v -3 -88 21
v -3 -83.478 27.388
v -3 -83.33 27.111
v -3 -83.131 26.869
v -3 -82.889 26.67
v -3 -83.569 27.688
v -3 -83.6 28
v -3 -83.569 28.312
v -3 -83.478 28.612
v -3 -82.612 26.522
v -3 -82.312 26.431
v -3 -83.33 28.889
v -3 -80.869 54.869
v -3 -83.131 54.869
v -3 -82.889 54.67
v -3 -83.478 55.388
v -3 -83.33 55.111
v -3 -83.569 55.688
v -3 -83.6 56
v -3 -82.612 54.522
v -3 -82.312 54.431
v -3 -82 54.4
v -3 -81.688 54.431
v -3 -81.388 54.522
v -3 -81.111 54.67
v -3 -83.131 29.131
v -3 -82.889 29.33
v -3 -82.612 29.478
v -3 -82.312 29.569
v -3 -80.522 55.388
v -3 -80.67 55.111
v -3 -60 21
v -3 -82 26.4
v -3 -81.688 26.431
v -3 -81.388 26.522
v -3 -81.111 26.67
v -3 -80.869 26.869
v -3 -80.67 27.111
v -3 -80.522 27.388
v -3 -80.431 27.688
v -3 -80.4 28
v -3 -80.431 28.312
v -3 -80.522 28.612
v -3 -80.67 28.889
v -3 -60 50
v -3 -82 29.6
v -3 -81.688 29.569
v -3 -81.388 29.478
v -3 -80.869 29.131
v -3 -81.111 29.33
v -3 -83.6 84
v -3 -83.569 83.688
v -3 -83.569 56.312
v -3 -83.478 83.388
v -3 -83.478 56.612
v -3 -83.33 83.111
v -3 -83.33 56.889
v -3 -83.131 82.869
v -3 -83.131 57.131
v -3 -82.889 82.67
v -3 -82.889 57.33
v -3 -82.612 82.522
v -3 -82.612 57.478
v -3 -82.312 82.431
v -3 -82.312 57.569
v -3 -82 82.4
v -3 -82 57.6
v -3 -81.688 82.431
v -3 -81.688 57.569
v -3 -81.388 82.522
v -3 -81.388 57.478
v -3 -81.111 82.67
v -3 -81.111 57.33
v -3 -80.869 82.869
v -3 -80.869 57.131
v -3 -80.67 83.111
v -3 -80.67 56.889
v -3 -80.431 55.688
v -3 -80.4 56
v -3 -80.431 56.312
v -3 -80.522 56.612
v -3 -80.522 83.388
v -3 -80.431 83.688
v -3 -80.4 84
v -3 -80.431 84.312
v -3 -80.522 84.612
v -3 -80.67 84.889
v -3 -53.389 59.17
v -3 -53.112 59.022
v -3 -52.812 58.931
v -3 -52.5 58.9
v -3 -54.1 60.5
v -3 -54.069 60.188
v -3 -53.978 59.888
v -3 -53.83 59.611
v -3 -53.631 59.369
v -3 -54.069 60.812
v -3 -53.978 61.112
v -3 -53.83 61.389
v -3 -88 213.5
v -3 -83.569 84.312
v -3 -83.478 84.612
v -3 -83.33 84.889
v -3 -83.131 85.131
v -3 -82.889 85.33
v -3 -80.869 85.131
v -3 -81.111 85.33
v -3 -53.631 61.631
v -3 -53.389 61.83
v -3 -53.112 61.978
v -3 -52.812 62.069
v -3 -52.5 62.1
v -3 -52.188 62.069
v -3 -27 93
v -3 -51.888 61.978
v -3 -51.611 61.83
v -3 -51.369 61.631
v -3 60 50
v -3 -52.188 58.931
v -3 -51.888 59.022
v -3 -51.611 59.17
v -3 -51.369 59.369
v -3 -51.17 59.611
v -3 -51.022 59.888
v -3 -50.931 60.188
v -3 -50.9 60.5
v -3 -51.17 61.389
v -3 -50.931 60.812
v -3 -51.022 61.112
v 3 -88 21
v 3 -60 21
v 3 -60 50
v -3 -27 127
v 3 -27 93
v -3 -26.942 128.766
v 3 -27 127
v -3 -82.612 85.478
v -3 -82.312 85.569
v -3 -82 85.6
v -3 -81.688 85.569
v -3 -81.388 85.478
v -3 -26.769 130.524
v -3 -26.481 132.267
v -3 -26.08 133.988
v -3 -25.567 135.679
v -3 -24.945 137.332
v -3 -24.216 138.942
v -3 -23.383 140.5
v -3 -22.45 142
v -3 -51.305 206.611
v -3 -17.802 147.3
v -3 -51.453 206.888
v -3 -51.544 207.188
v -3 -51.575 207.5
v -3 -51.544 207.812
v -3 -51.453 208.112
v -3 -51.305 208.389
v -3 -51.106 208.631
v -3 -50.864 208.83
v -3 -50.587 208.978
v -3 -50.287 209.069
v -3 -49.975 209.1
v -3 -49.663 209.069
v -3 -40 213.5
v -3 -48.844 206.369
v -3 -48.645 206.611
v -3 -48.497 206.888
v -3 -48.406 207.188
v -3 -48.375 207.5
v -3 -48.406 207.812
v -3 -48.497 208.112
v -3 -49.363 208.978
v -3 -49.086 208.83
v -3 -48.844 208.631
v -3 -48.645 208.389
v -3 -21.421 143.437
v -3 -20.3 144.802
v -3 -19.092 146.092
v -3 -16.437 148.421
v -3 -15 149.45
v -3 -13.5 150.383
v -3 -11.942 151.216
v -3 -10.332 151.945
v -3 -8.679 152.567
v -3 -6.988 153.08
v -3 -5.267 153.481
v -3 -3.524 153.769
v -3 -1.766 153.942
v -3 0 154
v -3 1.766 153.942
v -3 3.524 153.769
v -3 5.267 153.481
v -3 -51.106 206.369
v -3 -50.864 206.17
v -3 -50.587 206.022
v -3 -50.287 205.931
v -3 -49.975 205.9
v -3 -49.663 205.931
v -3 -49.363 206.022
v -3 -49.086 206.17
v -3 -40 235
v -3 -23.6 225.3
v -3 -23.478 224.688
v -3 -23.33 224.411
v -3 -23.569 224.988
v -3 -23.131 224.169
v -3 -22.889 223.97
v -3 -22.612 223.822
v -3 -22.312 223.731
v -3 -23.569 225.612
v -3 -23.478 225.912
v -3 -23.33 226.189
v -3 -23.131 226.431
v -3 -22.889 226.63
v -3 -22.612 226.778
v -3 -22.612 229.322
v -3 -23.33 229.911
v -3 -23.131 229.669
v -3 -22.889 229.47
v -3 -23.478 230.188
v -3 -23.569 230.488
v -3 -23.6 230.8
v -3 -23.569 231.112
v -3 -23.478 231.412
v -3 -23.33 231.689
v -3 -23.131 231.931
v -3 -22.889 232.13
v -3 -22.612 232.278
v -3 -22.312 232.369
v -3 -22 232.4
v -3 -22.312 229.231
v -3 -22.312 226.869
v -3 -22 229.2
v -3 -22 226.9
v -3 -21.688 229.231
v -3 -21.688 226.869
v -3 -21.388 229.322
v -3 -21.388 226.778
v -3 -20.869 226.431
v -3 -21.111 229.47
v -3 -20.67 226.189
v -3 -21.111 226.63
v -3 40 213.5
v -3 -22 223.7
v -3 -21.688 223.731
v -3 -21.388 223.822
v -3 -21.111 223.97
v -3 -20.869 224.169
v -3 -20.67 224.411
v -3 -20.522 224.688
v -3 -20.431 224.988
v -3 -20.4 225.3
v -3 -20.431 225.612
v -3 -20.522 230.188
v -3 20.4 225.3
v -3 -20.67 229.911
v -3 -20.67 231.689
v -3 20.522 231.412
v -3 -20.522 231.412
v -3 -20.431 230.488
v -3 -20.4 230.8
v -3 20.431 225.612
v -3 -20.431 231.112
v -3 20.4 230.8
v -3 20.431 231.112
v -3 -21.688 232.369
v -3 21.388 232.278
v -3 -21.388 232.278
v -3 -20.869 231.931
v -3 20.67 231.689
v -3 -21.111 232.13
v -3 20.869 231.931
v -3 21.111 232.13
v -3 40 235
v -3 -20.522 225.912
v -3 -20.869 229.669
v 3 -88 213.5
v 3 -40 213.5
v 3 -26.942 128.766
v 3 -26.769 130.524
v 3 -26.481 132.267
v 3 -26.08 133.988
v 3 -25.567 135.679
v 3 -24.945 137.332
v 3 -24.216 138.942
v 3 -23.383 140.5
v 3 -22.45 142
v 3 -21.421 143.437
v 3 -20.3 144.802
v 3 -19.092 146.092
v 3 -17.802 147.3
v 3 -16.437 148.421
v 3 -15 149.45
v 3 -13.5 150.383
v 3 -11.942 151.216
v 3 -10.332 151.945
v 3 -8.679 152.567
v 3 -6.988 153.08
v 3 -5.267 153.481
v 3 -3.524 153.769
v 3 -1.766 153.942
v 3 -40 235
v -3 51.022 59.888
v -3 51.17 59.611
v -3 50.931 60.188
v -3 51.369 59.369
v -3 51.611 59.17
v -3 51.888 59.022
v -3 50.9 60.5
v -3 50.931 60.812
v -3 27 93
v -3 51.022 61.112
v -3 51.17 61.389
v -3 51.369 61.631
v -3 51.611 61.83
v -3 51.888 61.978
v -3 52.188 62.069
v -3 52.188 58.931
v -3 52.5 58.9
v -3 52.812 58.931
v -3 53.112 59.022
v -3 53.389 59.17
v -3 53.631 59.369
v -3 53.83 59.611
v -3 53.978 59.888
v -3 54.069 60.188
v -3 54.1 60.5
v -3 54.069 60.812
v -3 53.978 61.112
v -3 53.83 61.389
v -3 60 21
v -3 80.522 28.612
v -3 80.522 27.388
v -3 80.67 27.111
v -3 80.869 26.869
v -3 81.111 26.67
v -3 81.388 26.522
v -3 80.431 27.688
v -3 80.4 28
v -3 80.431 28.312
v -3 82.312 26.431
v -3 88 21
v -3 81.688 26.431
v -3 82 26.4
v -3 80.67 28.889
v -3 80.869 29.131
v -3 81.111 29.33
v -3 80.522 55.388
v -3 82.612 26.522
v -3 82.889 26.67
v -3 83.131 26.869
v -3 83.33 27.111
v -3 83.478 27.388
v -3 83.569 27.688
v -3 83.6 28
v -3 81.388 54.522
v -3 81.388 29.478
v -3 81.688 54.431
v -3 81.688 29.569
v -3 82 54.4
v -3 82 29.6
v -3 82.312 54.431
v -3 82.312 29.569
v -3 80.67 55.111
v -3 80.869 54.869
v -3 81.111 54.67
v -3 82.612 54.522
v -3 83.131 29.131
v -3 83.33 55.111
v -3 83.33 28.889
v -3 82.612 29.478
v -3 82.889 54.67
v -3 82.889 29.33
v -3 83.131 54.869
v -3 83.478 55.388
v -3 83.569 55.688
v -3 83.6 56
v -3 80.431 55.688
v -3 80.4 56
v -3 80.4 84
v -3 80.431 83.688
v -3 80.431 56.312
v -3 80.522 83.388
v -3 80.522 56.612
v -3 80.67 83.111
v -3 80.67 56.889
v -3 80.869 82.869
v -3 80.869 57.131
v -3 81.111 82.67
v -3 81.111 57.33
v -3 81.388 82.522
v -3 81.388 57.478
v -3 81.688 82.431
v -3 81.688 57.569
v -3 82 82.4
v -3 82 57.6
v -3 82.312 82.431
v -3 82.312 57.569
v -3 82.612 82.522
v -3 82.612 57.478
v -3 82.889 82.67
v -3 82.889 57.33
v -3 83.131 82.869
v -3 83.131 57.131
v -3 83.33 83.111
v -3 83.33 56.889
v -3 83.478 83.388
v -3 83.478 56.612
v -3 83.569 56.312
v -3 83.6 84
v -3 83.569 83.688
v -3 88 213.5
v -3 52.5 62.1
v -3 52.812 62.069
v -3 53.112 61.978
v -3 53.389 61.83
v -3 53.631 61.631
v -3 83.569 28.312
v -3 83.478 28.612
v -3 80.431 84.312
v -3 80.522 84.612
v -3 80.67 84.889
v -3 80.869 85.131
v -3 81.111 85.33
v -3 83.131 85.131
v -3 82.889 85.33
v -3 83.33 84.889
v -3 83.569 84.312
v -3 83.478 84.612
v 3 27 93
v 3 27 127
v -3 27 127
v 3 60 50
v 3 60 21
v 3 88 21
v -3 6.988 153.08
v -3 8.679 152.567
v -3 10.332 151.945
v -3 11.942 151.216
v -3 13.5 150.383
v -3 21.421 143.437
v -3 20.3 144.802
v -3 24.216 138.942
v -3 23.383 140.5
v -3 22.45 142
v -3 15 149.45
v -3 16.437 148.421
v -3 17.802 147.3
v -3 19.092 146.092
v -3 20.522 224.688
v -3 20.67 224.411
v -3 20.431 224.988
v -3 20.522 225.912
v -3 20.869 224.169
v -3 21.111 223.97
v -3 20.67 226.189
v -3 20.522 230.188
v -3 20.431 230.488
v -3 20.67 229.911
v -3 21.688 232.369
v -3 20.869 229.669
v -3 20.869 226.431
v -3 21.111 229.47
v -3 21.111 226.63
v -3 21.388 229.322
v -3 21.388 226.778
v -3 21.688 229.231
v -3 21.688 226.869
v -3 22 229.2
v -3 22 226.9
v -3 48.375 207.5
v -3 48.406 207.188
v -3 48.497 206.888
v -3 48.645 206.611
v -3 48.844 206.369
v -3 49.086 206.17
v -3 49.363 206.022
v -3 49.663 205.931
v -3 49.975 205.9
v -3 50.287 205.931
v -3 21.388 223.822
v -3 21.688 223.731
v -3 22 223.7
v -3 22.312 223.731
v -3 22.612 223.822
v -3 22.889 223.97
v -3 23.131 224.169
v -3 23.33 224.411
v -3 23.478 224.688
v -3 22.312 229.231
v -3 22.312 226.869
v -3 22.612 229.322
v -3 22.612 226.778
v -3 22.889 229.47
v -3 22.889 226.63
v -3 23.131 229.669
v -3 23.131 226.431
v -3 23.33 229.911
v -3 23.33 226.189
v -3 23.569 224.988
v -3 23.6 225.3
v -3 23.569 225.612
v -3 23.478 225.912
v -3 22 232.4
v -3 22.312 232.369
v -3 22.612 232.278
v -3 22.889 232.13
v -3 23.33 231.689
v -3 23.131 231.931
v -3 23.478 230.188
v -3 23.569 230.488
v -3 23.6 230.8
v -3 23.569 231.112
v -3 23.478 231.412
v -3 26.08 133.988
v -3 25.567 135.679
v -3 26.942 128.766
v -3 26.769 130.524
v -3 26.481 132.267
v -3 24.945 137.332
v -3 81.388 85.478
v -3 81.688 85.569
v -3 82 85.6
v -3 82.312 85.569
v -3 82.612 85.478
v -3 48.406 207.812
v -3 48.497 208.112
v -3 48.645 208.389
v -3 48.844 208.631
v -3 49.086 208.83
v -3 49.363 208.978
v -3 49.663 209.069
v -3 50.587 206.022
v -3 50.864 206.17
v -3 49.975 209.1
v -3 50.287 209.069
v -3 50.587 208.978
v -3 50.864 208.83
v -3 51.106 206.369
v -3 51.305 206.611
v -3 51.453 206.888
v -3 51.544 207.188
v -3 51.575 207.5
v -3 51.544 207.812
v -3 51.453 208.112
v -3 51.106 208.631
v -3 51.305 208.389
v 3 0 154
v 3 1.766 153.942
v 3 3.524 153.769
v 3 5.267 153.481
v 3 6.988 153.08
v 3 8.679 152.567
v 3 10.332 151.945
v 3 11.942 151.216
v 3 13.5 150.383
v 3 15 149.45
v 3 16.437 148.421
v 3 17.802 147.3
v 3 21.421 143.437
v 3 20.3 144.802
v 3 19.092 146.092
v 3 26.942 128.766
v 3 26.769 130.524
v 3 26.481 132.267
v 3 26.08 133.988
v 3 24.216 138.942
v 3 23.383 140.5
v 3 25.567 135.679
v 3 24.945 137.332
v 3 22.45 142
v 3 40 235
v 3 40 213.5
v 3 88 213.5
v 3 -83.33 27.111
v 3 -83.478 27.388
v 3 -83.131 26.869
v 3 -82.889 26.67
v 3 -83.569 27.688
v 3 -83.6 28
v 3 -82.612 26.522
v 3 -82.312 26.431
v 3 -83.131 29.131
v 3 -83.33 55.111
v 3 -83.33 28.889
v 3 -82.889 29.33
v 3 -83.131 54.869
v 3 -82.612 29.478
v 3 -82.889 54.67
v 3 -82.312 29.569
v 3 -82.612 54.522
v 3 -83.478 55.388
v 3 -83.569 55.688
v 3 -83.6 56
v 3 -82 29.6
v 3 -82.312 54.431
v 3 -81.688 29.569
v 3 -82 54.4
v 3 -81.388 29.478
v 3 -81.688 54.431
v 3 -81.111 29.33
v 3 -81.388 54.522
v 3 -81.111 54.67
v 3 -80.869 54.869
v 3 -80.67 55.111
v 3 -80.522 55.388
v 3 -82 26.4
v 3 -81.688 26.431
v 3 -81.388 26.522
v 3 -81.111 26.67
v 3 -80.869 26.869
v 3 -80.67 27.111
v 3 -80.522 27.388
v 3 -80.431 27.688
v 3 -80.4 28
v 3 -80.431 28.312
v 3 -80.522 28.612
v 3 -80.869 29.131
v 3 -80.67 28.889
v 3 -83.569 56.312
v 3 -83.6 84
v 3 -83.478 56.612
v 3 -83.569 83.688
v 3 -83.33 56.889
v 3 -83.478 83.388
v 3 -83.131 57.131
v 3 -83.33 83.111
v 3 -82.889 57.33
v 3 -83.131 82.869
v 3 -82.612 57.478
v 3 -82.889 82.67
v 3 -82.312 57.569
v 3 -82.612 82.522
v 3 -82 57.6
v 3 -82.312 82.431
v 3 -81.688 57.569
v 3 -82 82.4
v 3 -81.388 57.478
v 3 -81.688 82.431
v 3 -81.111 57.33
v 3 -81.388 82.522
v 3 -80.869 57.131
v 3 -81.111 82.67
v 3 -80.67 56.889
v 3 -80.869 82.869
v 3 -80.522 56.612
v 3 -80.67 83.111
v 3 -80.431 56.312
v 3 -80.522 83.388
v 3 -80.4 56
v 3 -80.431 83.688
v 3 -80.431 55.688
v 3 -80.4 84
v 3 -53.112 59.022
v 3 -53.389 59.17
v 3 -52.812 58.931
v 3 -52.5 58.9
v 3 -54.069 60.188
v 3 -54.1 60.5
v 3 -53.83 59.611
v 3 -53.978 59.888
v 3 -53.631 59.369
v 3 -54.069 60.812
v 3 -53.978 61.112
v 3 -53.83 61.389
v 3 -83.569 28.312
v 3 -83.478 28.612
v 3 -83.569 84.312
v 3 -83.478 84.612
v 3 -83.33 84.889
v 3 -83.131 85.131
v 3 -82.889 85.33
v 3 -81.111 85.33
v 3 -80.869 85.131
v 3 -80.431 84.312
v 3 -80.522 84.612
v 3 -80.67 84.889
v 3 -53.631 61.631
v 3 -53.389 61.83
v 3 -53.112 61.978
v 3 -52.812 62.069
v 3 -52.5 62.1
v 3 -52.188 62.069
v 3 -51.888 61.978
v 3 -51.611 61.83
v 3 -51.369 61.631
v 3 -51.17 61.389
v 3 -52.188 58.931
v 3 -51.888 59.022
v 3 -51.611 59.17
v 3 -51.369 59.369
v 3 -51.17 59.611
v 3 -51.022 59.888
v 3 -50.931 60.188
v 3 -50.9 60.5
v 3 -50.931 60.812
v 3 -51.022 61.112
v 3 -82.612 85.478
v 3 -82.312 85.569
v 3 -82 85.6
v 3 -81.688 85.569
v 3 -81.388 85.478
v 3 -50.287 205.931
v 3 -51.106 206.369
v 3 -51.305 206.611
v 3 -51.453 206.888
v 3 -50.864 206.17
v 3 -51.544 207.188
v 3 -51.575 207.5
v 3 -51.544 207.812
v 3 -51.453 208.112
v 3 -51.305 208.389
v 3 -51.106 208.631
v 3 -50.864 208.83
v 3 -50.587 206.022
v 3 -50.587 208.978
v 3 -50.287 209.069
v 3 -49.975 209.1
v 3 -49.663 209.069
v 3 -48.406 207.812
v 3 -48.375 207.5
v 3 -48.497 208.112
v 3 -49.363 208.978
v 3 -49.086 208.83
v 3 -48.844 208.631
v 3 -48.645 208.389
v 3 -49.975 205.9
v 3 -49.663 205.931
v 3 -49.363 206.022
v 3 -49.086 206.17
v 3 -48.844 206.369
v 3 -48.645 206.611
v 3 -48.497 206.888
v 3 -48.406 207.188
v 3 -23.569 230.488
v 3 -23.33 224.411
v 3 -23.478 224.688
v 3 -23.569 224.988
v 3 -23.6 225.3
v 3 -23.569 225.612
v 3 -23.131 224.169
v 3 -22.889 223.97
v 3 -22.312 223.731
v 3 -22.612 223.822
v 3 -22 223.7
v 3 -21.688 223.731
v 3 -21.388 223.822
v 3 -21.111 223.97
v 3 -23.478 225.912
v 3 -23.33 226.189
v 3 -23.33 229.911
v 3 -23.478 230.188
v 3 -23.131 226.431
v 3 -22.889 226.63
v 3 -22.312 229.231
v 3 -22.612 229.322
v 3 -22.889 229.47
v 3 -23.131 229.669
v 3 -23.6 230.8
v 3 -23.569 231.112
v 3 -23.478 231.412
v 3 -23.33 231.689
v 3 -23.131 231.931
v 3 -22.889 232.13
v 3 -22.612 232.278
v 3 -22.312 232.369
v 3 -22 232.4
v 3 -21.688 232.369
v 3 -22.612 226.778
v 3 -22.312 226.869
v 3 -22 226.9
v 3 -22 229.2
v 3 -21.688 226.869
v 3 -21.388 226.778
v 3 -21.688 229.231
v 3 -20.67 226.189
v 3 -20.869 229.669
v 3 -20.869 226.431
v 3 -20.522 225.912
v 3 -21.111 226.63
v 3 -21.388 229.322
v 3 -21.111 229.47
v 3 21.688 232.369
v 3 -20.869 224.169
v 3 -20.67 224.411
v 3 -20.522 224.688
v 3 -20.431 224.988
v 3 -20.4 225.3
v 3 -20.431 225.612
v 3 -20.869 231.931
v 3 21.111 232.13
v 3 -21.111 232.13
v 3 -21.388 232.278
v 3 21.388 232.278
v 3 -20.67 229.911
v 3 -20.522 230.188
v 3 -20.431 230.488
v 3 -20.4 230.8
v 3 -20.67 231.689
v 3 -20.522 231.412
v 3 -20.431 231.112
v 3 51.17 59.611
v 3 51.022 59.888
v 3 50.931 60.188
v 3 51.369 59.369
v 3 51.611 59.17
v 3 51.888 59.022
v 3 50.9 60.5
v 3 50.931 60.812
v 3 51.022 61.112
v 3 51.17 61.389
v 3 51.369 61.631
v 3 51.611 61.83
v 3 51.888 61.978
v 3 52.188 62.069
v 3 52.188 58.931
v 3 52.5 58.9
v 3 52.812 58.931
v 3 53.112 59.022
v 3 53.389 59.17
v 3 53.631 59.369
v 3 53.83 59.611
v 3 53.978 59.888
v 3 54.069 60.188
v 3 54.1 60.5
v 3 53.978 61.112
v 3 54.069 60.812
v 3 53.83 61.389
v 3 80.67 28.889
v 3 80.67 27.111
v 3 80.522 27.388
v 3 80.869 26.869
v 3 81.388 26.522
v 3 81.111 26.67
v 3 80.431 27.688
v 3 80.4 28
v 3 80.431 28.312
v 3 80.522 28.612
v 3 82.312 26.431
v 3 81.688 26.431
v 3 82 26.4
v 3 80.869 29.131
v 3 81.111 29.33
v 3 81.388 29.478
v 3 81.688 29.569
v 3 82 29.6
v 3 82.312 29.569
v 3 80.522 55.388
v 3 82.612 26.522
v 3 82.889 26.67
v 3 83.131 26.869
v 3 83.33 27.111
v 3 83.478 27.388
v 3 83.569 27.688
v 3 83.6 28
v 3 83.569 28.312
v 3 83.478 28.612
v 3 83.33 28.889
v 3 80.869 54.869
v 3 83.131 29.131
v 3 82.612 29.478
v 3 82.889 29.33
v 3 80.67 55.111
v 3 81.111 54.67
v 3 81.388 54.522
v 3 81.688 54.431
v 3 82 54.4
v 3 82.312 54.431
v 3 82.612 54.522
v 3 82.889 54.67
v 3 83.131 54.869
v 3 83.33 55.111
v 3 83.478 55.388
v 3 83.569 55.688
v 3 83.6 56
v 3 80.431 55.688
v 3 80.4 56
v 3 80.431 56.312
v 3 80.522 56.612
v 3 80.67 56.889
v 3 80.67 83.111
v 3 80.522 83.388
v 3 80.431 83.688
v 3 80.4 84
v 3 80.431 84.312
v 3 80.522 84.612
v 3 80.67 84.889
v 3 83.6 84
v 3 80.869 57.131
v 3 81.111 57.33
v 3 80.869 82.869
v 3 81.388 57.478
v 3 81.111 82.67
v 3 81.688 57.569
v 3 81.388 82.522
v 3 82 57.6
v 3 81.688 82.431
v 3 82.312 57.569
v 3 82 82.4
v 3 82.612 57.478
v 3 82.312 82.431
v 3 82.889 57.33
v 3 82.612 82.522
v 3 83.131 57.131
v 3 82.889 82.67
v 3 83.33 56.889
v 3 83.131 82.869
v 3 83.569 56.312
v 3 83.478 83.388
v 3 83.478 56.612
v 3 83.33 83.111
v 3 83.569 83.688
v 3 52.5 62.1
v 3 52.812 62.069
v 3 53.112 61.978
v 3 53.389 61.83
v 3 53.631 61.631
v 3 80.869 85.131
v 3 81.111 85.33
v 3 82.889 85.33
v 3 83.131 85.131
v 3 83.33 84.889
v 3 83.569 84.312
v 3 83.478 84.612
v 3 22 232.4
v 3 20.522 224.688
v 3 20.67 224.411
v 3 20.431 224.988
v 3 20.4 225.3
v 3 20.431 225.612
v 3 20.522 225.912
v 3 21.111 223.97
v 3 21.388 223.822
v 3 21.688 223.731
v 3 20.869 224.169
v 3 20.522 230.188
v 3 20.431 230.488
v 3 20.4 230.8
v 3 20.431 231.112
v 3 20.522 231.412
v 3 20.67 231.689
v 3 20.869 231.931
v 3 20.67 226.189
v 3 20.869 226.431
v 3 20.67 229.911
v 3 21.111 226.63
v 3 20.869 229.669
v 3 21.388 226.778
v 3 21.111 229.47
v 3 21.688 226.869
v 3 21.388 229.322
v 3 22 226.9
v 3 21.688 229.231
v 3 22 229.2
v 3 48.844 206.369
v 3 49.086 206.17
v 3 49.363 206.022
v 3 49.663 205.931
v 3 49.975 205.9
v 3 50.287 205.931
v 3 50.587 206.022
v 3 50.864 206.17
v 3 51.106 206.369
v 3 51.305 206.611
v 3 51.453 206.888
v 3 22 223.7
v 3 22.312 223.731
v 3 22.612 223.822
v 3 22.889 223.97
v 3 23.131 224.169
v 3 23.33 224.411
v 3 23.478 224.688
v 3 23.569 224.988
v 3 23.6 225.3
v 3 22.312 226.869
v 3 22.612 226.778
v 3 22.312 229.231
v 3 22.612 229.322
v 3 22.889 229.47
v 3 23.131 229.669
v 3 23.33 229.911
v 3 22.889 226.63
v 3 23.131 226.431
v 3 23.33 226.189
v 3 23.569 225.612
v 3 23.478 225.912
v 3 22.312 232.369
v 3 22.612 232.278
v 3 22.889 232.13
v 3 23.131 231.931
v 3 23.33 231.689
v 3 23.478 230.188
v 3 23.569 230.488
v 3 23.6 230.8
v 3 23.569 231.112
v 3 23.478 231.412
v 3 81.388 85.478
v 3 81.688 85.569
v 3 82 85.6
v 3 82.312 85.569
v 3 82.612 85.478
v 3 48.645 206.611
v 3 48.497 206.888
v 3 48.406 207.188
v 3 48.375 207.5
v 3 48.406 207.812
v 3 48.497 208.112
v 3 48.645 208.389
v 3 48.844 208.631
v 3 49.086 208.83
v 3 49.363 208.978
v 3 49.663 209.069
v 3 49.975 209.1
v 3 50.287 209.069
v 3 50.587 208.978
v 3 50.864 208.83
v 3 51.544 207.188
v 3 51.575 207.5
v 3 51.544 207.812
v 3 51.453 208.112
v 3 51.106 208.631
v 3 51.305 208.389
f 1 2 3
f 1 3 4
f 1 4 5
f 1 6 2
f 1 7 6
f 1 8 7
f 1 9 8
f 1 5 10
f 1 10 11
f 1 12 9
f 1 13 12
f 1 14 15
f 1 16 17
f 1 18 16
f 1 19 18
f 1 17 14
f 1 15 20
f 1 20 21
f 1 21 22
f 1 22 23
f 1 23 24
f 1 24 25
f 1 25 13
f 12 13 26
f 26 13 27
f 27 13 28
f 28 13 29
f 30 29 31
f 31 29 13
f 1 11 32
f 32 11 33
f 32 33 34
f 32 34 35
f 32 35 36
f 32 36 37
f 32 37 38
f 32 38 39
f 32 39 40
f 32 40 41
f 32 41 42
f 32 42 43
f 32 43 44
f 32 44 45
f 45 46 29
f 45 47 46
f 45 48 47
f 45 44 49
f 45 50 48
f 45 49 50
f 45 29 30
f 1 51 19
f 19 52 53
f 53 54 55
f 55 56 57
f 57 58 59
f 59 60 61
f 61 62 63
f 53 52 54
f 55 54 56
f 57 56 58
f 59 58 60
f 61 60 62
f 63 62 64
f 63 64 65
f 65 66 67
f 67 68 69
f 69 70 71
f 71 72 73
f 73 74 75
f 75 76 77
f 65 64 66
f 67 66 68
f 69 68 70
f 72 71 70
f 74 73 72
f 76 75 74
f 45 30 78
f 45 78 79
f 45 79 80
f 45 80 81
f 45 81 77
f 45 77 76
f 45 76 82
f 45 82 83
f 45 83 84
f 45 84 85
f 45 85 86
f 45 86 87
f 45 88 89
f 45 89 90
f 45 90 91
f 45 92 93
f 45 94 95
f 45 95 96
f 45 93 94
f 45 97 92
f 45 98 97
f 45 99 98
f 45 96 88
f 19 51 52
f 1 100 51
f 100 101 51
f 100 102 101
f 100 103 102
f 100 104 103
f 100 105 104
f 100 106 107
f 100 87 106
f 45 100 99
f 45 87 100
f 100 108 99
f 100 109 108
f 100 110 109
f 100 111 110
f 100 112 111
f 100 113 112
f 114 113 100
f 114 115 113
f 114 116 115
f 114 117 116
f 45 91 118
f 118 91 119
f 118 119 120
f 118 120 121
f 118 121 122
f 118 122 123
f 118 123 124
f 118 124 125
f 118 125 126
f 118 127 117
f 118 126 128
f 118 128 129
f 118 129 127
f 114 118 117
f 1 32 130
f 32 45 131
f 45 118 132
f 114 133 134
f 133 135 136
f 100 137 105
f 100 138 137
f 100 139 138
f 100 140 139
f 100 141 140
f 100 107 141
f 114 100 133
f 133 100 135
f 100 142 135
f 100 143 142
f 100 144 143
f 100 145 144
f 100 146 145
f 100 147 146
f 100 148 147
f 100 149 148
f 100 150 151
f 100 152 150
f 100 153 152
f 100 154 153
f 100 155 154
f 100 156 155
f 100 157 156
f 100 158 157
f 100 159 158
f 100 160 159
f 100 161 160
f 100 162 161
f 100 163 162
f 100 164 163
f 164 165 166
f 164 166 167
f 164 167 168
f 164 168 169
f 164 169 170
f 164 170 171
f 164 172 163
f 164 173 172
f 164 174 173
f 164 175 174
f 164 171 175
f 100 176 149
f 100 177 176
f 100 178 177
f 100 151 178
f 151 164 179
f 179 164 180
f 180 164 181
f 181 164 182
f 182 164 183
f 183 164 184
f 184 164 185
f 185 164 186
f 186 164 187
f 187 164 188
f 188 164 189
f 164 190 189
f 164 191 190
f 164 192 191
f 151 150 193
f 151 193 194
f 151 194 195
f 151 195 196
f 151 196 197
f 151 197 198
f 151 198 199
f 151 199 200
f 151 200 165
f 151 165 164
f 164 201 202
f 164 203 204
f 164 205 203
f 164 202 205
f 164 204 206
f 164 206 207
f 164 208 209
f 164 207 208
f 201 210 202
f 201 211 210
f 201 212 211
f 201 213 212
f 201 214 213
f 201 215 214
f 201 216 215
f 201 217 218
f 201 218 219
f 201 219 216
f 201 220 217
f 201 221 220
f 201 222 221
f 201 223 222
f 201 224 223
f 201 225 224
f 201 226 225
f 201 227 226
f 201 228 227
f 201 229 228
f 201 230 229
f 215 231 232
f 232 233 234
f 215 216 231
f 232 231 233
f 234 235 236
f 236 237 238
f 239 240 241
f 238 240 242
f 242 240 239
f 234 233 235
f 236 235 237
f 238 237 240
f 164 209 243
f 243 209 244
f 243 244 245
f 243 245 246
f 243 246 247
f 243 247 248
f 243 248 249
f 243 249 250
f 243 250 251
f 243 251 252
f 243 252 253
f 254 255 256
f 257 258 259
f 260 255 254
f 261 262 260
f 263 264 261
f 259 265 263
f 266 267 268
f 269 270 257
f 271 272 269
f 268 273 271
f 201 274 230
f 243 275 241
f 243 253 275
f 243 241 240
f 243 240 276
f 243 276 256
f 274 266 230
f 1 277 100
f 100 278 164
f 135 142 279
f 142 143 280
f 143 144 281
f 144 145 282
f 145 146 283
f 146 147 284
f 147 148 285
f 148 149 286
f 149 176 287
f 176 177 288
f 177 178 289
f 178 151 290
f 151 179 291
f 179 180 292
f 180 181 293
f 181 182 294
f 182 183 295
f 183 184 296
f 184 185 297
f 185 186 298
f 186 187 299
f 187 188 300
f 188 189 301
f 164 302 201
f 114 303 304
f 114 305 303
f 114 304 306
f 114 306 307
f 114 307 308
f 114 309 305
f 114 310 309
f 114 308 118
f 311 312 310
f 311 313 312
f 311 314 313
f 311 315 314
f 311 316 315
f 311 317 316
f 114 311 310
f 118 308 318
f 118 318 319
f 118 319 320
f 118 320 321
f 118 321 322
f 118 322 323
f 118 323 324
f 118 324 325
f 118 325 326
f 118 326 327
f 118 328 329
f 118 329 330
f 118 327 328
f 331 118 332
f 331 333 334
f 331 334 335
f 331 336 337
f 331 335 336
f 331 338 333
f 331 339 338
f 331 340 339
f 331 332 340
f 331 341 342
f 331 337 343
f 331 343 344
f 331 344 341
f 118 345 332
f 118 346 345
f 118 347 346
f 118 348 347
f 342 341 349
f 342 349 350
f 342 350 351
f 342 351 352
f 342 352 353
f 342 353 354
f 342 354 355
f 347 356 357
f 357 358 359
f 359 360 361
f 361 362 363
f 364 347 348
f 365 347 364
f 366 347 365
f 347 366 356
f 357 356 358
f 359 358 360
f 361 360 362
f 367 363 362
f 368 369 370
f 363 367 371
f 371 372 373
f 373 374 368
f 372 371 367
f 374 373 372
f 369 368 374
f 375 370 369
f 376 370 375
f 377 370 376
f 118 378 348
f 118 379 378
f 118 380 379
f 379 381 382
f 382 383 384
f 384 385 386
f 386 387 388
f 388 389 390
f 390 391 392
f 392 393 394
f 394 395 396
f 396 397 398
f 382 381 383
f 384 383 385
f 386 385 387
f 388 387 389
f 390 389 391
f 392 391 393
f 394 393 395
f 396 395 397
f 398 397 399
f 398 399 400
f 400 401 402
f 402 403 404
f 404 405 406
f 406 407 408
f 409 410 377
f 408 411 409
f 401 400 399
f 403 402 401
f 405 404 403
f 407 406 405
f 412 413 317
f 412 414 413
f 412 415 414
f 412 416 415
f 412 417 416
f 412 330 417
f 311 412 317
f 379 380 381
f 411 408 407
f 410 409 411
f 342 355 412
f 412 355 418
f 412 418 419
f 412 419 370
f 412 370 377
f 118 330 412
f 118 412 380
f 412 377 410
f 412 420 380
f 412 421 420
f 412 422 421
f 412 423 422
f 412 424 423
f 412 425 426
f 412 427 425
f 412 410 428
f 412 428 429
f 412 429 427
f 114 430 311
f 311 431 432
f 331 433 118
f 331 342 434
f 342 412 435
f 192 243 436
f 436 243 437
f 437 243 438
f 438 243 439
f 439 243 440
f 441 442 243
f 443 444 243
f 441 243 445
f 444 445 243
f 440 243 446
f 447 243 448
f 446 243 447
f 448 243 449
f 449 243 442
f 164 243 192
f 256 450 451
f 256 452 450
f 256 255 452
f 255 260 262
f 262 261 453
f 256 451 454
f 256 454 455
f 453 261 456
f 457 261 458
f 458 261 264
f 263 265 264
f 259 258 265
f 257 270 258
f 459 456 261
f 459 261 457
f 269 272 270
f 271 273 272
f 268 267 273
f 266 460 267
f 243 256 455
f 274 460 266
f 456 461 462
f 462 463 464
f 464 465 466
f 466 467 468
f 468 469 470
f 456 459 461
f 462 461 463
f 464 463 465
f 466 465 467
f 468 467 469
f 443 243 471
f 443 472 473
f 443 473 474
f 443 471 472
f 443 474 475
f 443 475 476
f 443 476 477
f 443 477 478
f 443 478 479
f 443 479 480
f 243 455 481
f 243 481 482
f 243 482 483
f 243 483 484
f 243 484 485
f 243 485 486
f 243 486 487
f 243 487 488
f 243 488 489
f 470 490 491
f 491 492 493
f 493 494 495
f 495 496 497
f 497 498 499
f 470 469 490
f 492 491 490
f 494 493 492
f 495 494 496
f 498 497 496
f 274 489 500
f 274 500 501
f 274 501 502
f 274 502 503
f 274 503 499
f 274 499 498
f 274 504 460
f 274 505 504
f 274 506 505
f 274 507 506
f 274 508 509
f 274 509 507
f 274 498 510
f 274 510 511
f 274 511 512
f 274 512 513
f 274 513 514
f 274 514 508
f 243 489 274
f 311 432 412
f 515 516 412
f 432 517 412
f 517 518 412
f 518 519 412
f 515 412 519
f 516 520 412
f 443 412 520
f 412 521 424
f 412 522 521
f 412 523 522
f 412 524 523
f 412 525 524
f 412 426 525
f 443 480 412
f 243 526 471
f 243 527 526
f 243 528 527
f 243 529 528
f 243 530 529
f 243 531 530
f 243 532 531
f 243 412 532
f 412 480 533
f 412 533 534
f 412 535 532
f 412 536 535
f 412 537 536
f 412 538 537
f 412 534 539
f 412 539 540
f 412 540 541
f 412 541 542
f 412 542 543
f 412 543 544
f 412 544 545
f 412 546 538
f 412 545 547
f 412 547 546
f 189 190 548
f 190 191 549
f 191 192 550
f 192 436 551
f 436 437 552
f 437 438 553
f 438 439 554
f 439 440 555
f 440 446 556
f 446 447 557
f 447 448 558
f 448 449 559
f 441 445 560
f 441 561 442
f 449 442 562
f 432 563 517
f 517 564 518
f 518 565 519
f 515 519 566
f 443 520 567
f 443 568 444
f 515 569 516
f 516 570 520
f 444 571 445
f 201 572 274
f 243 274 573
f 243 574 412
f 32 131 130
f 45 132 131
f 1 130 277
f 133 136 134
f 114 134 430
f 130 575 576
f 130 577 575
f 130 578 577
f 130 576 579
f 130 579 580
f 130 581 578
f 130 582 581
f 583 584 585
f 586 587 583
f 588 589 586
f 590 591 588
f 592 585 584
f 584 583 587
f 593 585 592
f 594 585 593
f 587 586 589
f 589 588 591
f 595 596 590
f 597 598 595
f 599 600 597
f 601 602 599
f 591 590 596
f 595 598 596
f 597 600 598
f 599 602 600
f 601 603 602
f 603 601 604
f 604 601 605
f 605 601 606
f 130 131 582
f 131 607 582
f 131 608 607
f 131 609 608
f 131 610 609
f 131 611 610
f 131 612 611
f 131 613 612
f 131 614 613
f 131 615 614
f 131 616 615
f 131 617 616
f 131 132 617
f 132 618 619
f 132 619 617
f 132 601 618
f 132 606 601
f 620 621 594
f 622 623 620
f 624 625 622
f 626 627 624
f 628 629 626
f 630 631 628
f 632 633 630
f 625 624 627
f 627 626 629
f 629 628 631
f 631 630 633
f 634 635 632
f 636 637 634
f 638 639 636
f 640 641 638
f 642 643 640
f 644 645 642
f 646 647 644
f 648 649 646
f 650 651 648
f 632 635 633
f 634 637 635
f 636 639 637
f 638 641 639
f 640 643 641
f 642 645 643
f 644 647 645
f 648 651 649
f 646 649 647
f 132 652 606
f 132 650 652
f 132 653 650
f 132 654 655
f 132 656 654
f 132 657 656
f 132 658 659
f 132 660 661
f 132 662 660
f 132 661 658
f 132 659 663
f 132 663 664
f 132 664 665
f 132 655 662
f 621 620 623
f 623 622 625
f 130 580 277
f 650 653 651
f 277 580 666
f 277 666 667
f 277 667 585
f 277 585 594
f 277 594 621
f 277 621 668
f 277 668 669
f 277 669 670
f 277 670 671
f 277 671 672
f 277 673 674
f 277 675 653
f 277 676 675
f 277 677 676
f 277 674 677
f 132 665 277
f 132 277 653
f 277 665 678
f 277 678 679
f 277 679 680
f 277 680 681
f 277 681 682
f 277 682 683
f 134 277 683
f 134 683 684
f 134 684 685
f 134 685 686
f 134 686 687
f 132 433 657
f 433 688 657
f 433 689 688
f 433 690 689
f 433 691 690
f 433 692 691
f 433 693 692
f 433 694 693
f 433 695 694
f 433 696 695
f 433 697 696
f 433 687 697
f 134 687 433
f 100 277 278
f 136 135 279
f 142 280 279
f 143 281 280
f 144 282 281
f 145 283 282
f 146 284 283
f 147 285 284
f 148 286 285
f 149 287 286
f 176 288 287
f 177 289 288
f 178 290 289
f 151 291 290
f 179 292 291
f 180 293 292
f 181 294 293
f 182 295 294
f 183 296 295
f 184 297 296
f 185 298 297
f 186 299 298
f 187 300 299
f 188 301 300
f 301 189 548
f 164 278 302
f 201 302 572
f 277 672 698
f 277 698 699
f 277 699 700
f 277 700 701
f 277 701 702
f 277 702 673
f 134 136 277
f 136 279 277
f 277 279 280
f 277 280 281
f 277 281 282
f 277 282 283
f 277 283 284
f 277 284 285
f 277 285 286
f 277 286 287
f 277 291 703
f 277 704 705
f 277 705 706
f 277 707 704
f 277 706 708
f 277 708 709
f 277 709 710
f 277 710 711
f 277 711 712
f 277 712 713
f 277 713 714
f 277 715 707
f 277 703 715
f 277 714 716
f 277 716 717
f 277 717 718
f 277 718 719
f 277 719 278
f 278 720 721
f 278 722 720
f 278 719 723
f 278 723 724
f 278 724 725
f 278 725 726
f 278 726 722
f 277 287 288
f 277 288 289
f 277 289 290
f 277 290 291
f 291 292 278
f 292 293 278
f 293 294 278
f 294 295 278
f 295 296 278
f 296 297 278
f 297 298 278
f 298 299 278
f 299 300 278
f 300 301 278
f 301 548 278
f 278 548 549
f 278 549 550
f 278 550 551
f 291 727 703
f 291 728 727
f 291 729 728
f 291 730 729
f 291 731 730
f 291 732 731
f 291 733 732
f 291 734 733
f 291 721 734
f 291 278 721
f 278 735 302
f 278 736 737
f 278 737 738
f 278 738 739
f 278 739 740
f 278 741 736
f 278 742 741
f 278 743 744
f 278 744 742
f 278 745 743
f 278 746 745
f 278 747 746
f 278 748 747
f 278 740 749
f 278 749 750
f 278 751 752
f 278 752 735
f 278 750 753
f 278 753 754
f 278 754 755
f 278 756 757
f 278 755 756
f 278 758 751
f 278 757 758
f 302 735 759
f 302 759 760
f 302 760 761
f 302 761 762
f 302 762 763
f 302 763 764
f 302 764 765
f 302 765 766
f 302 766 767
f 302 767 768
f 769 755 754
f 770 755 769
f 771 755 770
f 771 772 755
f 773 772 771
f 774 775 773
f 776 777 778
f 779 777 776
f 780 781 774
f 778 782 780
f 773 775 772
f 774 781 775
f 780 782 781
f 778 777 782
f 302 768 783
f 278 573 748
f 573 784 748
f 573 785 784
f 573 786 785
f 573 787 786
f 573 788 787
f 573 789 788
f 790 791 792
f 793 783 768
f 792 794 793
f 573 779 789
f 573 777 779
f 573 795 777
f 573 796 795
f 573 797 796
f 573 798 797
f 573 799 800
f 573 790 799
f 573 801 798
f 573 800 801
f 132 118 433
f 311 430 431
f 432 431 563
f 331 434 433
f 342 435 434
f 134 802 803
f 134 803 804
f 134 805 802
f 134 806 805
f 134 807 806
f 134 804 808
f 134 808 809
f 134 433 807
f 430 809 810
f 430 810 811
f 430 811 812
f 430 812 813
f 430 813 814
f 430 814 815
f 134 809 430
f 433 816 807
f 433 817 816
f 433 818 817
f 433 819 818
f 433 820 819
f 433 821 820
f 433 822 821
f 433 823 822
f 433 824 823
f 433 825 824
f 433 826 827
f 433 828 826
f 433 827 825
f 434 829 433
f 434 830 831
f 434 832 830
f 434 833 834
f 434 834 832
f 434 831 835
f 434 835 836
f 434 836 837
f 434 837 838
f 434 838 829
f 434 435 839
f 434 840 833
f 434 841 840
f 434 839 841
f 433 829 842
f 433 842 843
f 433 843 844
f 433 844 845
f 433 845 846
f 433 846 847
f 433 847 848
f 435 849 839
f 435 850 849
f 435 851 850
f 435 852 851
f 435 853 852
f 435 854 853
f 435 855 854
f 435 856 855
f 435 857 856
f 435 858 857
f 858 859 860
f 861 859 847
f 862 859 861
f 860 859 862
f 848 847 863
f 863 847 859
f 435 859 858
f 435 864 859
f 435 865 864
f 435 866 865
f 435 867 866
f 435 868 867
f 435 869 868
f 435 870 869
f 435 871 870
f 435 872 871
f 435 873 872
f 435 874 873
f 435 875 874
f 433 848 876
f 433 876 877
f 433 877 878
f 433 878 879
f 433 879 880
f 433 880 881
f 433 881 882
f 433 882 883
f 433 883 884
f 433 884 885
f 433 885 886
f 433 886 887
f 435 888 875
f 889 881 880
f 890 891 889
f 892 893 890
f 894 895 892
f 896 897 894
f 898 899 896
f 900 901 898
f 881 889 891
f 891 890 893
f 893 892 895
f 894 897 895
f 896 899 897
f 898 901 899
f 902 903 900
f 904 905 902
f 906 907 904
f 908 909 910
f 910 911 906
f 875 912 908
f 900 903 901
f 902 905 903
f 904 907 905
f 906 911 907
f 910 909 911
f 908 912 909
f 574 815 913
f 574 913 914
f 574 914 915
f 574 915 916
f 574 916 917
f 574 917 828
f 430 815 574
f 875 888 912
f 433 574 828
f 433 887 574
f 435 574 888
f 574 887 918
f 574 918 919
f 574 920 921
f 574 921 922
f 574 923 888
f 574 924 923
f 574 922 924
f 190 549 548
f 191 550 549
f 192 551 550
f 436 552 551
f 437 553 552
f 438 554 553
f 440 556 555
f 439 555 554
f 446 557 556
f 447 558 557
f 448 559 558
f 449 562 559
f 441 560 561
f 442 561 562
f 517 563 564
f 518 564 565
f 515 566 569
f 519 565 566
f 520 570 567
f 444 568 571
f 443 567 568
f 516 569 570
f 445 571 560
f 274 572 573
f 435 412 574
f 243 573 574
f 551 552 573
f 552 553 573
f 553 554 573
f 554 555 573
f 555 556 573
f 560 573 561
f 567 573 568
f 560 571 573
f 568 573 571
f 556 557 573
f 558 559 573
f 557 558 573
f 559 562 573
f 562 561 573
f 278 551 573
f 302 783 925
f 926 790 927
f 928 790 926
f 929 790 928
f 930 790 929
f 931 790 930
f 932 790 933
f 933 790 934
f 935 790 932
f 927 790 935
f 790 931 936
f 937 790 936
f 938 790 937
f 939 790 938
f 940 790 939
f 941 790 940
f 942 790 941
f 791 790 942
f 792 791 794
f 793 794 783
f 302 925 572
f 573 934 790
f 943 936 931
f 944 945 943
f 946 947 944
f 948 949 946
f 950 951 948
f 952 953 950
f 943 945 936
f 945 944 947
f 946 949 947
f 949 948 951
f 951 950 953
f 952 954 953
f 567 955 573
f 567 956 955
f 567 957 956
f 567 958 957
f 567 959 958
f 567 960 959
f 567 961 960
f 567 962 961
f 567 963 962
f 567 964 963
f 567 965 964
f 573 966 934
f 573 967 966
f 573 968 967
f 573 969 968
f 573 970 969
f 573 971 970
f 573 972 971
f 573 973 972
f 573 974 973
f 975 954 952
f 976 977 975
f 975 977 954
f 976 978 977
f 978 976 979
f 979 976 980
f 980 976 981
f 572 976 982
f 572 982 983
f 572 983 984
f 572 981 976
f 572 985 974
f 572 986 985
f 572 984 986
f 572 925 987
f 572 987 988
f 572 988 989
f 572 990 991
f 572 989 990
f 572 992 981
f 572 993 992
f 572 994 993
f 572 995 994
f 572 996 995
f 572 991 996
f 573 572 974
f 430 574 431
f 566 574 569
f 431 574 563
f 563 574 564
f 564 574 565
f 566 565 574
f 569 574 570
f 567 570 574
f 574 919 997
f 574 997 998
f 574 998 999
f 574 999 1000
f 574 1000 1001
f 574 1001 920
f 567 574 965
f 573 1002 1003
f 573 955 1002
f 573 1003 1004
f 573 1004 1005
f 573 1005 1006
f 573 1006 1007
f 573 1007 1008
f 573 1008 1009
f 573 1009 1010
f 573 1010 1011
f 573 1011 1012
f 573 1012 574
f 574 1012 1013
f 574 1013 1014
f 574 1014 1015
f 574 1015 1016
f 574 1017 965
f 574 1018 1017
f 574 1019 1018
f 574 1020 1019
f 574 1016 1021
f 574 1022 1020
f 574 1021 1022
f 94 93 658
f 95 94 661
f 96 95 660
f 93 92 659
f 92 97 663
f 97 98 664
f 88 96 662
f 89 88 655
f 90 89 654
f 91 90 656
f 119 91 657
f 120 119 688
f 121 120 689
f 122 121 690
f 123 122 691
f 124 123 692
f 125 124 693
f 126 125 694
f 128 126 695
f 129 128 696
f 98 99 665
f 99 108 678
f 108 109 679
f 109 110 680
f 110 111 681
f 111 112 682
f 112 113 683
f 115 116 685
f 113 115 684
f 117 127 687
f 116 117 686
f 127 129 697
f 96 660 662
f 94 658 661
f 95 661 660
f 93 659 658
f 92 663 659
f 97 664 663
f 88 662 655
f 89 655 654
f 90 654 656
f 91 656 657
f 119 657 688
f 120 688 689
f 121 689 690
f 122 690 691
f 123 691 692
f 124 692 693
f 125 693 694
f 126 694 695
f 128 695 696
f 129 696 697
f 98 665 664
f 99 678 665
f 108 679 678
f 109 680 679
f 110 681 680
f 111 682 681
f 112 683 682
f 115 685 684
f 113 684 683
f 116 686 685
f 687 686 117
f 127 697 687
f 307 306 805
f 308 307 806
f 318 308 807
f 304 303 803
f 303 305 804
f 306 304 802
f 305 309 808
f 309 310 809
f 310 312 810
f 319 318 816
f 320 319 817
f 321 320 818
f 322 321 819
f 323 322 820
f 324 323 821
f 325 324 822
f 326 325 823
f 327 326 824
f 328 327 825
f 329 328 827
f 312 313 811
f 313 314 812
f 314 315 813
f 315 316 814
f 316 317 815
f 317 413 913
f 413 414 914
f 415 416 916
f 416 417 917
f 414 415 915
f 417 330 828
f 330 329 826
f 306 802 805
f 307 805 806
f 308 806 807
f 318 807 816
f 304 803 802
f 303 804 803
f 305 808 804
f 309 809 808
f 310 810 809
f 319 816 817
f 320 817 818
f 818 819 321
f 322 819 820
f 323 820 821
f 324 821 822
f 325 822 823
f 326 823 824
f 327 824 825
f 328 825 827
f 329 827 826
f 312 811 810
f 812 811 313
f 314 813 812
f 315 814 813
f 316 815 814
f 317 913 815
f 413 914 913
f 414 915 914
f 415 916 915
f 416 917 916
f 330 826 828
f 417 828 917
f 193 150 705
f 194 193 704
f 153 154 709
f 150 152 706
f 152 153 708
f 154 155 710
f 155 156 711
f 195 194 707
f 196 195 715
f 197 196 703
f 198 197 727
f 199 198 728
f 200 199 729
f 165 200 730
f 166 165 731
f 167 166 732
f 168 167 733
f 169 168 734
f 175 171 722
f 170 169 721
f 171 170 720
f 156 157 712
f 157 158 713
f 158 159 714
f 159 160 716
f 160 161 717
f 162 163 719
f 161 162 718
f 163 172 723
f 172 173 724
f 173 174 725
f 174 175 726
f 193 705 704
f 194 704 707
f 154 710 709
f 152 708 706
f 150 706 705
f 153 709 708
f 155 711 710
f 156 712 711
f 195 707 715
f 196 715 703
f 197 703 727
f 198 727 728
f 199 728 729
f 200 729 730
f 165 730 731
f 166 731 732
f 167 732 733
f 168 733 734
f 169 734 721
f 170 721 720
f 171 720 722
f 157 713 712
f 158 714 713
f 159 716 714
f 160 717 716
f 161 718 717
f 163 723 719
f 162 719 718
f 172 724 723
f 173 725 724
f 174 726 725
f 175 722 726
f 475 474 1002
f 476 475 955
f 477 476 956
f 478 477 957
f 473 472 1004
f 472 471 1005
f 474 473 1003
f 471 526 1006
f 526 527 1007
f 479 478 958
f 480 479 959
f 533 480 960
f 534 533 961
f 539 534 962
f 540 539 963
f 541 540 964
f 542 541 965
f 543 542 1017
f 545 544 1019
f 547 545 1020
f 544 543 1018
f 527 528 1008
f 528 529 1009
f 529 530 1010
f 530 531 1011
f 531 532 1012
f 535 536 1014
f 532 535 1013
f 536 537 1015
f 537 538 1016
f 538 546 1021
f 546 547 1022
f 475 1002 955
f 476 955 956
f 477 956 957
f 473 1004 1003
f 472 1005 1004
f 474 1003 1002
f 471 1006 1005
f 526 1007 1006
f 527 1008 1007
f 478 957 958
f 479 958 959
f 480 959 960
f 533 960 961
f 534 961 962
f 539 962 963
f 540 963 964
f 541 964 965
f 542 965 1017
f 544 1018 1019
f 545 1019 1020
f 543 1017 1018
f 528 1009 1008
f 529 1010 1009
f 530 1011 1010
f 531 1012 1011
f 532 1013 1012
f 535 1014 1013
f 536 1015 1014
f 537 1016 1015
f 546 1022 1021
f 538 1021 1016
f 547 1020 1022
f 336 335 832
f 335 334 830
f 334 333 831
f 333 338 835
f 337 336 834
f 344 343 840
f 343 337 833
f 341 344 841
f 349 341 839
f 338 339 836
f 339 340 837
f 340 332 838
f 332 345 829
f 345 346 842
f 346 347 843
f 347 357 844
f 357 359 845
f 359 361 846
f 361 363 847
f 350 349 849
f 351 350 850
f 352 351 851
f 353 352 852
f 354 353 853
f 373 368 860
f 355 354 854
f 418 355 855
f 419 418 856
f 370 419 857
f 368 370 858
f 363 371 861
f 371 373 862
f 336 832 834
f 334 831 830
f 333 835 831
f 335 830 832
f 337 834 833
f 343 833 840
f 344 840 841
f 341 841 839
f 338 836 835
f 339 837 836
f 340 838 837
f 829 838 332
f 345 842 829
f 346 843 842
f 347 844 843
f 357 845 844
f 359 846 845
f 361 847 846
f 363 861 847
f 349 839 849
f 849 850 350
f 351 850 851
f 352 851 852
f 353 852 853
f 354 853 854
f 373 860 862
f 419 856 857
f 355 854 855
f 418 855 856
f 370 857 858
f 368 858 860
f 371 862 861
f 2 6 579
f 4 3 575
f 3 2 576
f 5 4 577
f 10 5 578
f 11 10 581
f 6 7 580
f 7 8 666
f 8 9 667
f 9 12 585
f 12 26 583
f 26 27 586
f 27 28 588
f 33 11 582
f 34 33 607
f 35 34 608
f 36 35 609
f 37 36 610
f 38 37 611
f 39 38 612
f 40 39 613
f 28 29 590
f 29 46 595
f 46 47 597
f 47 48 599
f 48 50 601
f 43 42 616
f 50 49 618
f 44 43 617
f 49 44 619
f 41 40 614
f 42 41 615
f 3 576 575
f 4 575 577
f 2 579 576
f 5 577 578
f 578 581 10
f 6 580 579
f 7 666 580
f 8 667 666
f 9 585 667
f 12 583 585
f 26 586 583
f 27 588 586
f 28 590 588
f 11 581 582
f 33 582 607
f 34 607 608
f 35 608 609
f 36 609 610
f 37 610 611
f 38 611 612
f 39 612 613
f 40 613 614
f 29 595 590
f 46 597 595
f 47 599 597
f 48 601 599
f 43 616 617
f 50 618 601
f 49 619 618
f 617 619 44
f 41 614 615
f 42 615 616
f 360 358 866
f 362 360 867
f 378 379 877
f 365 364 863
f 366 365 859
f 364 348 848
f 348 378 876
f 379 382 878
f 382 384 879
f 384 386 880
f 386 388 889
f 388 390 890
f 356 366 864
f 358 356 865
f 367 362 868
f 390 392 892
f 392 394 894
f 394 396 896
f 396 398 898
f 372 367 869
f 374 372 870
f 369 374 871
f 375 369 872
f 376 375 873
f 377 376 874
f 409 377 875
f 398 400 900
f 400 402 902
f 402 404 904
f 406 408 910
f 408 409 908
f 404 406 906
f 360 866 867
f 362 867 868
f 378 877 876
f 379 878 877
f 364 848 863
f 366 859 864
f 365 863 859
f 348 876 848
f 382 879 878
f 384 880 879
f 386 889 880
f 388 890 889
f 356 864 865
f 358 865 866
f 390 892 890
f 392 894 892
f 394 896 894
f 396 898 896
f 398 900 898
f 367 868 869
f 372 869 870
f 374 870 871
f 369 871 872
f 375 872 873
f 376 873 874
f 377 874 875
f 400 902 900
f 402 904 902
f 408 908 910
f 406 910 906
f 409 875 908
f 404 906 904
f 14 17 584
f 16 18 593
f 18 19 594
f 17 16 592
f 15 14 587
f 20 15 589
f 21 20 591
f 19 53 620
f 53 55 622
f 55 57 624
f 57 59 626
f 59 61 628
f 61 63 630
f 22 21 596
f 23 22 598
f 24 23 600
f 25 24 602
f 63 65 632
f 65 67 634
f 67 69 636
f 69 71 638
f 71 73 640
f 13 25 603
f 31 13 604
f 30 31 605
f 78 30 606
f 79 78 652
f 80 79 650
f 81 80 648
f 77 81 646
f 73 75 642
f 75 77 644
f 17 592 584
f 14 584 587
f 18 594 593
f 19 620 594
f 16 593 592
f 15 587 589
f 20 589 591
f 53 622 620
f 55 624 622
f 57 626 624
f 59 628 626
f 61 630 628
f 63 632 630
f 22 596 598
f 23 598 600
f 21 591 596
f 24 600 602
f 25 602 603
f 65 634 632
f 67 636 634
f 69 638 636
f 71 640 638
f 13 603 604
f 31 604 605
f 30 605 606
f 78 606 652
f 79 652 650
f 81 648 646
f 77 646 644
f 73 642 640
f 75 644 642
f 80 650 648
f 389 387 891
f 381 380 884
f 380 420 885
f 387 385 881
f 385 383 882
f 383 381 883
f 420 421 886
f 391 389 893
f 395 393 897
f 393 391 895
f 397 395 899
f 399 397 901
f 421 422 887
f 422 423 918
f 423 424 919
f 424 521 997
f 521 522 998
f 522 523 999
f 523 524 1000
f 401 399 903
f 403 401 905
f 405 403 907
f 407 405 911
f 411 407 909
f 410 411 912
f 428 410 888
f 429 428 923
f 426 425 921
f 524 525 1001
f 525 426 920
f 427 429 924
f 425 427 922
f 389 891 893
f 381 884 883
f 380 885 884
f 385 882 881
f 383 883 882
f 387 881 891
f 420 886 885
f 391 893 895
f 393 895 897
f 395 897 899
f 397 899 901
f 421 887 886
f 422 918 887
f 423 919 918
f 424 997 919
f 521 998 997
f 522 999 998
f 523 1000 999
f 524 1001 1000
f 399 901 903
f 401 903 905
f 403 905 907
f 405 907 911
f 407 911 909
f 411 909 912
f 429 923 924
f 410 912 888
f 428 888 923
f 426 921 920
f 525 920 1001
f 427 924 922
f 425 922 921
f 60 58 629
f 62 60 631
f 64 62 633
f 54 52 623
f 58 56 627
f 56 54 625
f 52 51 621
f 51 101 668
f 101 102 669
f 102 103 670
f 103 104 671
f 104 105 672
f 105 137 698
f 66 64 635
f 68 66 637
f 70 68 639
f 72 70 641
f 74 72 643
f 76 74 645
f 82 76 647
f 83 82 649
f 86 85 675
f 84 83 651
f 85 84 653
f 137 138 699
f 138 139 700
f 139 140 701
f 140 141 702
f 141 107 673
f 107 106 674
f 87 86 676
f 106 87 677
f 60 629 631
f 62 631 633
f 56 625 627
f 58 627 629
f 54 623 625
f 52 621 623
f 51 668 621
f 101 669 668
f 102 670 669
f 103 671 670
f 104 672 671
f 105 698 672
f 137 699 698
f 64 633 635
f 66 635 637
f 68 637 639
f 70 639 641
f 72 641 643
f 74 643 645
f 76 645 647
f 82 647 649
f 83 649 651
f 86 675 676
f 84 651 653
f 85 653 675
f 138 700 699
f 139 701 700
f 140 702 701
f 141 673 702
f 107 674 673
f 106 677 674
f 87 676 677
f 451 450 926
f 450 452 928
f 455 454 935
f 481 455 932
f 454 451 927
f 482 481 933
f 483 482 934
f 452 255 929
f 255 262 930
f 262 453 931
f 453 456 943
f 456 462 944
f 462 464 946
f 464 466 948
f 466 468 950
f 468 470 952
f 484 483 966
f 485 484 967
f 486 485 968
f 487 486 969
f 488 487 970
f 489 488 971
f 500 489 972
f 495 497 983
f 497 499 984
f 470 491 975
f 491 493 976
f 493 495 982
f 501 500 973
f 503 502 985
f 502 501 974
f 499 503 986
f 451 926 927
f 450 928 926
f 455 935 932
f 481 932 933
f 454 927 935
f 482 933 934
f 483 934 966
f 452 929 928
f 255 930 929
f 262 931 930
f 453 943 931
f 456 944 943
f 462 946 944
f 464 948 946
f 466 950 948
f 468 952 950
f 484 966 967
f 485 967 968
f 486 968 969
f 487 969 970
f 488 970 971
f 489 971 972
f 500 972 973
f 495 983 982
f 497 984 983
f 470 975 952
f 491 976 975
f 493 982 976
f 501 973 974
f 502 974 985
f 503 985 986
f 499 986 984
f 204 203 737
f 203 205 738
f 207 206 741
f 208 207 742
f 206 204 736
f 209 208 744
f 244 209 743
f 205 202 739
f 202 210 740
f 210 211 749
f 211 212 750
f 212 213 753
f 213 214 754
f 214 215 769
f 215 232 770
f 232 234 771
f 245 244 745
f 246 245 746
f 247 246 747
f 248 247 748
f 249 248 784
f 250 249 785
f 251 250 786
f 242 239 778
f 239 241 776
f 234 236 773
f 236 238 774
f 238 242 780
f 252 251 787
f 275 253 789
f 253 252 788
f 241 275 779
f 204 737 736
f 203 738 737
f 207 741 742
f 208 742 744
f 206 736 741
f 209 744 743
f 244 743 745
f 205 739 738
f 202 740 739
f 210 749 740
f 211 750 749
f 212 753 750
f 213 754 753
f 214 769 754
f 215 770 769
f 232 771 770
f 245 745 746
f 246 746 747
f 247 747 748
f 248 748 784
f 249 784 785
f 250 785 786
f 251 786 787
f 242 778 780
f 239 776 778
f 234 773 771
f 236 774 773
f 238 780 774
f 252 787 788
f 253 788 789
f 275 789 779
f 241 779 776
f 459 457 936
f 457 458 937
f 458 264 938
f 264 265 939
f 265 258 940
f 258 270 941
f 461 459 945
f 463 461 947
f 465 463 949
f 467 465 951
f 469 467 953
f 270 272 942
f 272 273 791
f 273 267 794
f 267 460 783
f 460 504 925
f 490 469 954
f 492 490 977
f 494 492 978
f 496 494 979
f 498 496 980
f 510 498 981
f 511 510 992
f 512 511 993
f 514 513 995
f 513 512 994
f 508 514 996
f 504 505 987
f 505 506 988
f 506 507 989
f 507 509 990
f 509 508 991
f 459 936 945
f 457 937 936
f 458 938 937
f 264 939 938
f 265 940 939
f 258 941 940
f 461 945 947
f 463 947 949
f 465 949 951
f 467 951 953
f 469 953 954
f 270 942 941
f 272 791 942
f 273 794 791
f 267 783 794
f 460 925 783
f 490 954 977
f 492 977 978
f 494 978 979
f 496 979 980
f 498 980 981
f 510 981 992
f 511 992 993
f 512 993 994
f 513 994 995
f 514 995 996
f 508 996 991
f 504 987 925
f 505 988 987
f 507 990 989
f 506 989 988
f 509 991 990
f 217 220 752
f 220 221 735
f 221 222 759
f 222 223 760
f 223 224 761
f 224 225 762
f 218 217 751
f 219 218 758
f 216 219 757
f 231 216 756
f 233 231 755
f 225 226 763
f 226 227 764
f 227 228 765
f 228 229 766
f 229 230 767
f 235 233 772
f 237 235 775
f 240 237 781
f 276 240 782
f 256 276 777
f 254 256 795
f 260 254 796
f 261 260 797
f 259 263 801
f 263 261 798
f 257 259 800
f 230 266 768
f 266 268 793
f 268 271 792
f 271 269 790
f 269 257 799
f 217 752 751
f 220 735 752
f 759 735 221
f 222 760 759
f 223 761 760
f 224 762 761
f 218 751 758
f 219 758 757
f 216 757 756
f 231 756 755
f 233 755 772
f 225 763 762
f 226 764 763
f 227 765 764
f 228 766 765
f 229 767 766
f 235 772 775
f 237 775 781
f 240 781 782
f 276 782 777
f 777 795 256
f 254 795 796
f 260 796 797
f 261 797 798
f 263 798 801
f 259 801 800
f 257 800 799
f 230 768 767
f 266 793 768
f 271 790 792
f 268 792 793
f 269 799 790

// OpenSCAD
// screen_plate_v3 — v3 双面屏支架两件套: 中央屏幕板 (与 build_plate.py 同参, 2026-07-10)
// 局部系 = 盘坐标系 (未转45°), Z0 = 盘顶面; 板厚 6 居中到轴平面: X -3..+3
// 两面各贴一块屏 (前屏 X-3 面, 后屏 X+3 面); 屏幕孔/接口窗两侧屏共用 (对头短螺丝)
// 主体 Y ±88 × Z 21..213.5; 顶部中央凸舌 ±40 × Z 213.5..235 (top_cap_v3 双腿夹持)

FIN_T    = 6;
FIN_X0   = -FIN_T / 2;         // -3 (居中)
FIN_HW   = 88;                 // 半宽 (156→176, 塔柱外移)
PLATE_Z0 = 21;                 // 翼板底边 (堆叠顶 + 余量)
NOTCH_HW = 60; NOTCH_TOP = 50;           // 底部中央让位缺口 (顶 = 盘面+50 = 屏底沿)
FIN_TOP  = 213.5;              // 主体顶 (= 50 + 10.5 + 147 + 6)
TAB_HW   = 40;  TAB_TOP = 235;           // 顶部凸舌 (屏顶 219 之上; 帽板底 238 留 3)
CAP_HOLE_Y = 22; CAP_HOLE_Z = [225.3, 230.8];  // 顶帽夹舌孔 (装配系 271.0 / 276.5)
WIN_HW = 27; WIN_Z0 = 93; WIN_Z1 = 127;  // 接口窗 + 顶 R27 拱 (圆心 (0,127))
M3 = 3.2;
JOINT_Y = 82;  JOINT_Z = [28, 56, 84];   // 底座连接孔 (= gantry_v3 塔柱中心)
SCREEN_HOLES = [[-52.5, 60.5], [52.5, 60.5], [-49.975, 207.5], [49.975, 207.5]];

module plate_profile() {   // (Y,Z)
    difference() {
        union() {
            translate([-FIN_HW, PLATE_Z0]) square([2*FIN_HW, FIN_TOP - PLATE_Z0]);
            translate([-TAB_HW, FIN_TOP - 1]) square([2*TAB_HW, TAB_TOP - FIN_TOP + 1]);  // 顶舌
        }
        union() {  // 接口窗 + 顶拱
            translate([-WIN_HW, WIN_Z0]) square([2*WIN_HW, WIN_Z1 - WIN_Z0]);
            translate([0, WIN_Z1]) circle(r = WIN_HW, $fn = 96);
        }
        translate([-NOTCH_HW, PLATE_Z0-1]) square([2*NOTCH_HW, NOTCH_TOP-PLATE_Z0+1]);  // 底部中央缺口
        for (h = SCREEN_HOLES) translate(h) circle(d = M3, $fn = 32);                   // 两侧屏共用
        for (z = JOINT_Z) for (sy = [-1, 1]) translate([sy*JOINT_Y, z]) circle(d = M3, $fn = 32);
        for (z = CAP_HOLE_Z) for (sy = [-1, 1]) translate([sy*CAP_HOLE_Y, z]) circle(d = M3, $fn = 32);
    }
}

translate([FIN_X0, 0, 0]) rotate([90, 0, 90]) linear_extrude(FIN_T) plate_profile();
